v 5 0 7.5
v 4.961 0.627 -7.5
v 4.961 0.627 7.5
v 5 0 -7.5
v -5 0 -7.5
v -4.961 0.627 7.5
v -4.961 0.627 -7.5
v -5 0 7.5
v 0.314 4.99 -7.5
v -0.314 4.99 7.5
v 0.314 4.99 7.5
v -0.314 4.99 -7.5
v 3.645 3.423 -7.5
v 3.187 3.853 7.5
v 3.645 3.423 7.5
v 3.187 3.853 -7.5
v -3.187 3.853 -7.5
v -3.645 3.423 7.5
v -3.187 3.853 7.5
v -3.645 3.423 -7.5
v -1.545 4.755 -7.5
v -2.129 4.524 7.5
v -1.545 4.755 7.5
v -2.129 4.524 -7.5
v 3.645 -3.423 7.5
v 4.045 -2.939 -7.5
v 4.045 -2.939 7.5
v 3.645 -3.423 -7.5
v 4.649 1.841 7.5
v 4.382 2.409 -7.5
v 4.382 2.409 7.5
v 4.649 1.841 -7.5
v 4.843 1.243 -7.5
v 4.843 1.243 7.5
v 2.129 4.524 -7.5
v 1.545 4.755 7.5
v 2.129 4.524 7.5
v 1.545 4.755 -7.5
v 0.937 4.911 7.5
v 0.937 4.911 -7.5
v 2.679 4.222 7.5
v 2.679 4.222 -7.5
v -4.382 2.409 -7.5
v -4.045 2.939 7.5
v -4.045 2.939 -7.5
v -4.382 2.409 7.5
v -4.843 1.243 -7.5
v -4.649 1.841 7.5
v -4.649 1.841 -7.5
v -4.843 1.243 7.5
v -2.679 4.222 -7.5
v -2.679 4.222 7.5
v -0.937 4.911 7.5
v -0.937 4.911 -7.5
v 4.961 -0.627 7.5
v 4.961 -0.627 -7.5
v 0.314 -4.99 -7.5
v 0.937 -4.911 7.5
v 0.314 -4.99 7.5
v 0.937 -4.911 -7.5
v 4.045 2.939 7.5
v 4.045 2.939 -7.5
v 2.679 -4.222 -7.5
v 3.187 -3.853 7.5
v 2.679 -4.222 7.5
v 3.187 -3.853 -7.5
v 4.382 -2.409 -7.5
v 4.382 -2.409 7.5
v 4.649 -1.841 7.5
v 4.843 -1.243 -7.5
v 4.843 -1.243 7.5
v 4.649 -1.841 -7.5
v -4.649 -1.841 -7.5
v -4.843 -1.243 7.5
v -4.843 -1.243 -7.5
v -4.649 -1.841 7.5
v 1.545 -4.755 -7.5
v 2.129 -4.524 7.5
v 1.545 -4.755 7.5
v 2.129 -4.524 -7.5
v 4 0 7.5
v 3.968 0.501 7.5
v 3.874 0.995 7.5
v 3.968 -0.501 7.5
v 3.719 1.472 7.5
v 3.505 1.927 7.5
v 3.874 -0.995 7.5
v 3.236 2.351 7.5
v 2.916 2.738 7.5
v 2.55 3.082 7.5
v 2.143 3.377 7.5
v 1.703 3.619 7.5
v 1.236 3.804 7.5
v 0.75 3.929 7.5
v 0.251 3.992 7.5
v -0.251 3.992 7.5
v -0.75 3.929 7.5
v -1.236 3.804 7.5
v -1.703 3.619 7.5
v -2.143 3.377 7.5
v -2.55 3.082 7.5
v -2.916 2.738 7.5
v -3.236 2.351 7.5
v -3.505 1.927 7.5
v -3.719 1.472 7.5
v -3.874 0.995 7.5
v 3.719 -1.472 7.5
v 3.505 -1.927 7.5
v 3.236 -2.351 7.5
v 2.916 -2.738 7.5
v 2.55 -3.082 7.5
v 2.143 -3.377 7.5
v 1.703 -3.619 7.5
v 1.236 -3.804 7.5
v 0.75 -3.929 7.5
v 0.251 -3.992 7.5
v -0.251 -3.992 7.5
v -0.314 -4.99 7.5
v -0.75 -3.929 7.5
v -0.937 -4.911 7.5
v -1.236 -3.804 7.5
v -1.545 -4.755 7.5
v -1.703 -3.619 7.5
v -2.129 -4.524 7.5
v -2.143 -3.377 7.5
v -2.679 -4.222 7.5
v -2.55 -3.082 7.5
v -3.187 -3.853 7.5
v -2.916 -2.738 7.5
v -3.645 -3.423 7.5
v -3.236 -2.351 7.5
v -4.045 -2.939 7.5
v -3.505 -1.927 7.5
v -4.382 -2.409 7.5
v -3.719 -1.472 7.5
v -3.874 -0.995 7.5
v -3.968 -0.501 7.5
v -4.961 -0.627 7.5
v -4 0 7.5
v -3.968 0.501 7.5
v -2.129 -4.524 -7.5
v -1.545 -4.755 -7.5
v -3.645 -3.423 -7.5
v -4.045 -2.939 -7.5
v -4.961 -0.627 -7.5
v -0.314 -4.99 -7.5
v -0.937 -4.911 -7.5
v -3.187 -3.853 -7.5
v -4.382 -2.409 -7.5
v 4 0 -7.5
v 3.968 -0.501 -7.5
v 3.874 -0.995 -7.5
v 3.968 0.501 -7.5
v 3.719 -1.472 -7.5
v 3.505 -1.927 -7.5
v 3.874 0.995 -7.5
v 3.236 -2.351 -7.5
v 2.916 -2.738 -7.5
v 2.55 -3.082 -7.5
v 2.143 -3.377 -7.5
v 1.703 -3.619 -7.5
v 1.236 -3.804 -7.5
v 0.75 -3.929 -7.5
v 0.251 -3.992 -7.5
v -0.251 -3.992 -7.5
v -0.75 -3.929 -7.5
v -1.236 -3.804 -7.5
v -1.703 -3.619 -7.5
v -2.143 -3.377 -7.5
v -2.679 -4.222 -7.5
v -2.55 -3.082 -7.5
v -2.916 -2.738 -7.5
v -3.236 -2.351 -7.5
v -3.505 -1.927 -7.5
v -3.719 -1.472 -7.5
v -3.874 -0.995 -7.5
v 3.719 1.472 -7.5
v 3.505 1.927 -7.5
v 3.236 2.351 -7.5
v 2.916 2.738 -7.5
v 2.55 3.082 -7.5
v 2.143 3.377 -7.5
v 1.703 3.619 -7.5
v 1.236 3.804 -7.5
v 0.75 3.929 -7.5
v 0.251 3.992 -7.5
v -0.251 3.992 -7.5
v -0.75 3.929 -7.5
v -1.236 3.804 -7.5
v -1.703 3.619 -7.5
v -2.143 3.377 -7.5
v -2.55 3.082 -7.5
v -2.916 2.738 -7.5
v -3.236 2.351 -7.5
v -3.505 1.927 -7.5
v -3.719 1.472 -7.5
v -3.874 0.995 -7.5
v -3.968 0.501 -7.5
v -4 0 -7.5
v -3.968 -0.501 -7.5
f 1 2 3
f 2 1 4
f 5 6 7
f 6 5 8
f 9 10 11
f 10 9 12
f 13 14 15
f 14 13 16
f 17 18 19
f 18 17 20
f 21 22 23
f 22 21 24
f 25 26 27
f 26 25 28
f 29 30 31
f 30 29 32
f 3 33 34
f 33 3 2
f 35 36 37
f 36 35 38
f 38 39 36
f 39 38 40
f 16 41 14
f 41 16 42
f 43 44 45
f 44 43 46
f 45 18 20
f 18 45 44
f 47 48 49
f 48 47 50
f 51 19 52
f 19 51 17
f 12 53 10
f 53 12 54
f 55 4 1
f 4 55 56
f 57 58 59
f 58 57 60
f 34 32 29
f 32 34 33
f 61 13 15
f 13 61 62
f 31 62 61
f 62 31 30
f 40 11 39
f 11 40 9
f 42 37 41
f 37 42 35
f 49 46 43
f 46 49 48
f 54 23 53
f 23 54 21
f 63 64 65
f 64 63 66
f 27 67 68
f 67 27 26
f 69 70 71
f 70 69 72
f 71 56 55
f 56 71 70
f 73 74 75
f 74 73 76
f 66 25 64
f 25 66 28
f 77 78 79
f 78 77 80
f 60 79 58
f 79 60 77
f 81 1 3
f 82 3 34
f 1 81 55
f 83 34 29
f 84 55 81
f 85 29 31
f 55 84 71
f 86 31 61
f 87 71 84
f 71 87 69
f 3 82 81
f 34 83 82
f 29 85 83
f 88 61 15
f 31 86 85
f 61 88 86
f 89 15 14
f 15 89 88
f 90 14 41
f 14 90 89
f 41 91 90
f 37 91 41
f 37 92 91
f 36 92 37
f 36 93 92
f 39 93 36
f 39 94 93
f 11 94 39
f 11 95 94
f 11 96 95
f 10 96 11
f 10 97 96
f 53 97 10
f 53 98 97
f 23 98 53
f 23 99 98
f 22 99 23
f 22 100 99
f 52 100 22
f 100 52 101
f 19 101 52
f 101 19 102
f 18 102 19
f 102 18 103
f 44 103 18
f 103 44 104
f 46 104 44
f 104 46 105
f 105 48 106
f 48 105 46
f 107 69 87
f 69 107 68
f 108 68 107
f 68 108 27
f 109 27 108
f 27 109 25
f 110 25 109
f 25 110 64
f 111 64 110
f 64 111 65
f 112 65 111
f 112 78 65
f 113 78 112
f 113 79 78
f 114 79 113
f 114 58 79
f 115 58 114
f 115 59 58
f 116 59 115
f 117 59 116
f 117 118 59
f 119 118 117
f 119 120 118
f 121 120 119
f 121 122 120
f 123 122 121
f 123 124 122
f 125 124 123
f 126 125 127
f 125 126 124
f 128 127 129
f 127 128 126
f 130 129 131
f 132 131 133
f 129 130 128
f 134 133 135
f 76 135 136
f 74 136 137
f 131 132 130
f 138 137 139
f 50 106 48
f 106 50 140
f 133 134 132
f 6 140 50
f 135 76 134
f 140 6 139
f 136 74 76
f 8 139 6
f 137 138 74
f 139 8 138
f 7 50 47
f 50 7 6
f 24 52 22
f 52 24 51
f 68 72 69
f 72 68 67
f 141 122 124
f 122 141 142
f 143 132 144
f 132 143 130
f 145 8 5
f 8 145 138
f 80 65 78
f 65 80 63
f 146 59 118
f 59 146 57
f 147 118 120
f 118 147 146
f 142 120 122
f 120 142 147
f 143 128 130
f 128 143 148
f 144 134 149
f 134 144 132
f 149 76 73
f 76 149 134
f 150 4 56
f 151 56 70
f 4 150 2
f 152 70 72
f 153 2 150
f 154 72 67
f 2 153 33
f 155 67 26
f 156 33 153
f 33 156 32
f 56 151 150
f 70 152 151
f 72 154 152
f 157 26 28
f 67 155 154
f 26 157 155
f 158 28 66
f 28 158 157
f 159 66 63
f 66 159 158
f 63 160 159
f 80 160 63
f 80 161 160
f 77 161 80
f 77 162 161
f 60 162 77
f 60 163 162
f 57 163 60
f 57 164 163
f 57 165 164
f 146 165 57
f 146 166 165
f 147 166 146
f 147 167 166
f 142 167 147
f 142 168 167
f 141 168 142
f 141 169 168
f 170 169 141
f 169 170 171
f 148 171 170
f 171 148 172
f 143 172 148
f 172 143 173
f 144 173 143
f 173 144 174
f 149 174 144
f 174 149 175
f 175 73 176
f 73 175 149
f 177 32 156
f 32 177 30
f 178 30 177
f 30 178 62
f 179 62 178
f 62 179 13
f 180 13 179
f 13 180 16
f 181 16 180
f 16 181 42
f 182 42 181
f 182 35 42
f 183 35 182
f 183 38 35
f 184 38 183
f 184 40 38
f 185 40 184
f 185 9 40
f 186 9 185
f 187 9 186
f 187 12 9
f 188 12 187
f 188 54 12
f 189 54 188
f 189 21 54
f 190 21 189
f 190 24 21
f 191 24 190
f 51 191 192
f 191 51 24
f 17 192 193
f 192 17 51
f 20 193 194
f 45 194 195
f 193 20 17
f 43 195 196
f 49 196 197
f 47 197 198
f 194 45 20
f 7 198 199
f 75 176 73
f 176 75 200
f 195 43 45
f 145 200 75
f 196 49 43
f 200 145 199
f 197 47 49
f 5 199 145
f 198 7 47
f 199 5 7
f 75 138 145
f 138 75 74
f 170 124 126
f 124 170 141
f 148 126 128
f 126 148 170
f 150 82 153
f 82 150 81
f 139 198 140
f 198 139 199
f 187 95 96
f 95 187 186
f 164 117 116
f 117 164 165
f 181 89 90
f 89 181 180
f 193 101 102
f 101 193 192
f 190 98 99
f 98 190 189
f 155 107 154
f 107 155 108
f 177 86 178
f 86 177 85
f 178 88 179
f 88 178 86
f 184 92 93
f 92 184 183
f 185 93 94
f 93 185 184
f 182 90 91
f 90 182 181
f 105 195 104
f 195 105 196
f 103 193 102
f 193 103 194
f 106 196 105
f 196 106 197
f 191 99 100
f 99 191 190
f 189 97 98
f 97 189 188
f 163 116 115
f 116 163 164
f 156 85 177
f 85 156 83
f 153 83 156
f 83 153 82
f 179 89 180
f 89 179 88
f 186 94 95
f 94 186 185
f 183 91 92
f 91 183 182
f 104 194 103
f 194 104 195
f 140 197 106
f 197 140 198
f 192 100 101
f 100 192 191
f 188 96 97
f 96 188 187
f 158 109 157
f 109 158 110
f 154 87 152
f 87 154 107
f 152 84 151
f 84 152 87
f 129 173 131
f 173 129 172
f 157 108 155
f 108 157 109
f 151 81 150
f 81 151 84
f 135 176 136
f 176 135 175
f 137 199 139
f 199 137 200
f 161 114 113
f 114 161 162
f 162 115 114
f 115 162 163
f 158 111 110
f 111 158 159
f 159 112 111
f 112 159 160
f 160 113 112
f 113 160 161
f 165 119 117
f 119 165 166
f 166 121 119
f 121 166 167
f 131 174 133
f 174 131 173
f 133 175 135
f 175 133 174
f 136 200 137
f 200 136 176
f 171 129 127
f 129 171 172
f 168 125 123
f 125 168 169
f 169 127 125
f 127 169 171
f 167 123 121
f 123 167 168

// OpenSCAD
$fn = 50;


difference() {
	union() {
		translate(v = [0, 0, -7.5000000000]) {
			cylinder(h = 15, r = 5.0000000000);
		}
	}
	union() {
		translate(v = [0, 0, -100.0000000000]) {
			cylinder(h = 200, r = 4.0000000000);
		}
	}
}
